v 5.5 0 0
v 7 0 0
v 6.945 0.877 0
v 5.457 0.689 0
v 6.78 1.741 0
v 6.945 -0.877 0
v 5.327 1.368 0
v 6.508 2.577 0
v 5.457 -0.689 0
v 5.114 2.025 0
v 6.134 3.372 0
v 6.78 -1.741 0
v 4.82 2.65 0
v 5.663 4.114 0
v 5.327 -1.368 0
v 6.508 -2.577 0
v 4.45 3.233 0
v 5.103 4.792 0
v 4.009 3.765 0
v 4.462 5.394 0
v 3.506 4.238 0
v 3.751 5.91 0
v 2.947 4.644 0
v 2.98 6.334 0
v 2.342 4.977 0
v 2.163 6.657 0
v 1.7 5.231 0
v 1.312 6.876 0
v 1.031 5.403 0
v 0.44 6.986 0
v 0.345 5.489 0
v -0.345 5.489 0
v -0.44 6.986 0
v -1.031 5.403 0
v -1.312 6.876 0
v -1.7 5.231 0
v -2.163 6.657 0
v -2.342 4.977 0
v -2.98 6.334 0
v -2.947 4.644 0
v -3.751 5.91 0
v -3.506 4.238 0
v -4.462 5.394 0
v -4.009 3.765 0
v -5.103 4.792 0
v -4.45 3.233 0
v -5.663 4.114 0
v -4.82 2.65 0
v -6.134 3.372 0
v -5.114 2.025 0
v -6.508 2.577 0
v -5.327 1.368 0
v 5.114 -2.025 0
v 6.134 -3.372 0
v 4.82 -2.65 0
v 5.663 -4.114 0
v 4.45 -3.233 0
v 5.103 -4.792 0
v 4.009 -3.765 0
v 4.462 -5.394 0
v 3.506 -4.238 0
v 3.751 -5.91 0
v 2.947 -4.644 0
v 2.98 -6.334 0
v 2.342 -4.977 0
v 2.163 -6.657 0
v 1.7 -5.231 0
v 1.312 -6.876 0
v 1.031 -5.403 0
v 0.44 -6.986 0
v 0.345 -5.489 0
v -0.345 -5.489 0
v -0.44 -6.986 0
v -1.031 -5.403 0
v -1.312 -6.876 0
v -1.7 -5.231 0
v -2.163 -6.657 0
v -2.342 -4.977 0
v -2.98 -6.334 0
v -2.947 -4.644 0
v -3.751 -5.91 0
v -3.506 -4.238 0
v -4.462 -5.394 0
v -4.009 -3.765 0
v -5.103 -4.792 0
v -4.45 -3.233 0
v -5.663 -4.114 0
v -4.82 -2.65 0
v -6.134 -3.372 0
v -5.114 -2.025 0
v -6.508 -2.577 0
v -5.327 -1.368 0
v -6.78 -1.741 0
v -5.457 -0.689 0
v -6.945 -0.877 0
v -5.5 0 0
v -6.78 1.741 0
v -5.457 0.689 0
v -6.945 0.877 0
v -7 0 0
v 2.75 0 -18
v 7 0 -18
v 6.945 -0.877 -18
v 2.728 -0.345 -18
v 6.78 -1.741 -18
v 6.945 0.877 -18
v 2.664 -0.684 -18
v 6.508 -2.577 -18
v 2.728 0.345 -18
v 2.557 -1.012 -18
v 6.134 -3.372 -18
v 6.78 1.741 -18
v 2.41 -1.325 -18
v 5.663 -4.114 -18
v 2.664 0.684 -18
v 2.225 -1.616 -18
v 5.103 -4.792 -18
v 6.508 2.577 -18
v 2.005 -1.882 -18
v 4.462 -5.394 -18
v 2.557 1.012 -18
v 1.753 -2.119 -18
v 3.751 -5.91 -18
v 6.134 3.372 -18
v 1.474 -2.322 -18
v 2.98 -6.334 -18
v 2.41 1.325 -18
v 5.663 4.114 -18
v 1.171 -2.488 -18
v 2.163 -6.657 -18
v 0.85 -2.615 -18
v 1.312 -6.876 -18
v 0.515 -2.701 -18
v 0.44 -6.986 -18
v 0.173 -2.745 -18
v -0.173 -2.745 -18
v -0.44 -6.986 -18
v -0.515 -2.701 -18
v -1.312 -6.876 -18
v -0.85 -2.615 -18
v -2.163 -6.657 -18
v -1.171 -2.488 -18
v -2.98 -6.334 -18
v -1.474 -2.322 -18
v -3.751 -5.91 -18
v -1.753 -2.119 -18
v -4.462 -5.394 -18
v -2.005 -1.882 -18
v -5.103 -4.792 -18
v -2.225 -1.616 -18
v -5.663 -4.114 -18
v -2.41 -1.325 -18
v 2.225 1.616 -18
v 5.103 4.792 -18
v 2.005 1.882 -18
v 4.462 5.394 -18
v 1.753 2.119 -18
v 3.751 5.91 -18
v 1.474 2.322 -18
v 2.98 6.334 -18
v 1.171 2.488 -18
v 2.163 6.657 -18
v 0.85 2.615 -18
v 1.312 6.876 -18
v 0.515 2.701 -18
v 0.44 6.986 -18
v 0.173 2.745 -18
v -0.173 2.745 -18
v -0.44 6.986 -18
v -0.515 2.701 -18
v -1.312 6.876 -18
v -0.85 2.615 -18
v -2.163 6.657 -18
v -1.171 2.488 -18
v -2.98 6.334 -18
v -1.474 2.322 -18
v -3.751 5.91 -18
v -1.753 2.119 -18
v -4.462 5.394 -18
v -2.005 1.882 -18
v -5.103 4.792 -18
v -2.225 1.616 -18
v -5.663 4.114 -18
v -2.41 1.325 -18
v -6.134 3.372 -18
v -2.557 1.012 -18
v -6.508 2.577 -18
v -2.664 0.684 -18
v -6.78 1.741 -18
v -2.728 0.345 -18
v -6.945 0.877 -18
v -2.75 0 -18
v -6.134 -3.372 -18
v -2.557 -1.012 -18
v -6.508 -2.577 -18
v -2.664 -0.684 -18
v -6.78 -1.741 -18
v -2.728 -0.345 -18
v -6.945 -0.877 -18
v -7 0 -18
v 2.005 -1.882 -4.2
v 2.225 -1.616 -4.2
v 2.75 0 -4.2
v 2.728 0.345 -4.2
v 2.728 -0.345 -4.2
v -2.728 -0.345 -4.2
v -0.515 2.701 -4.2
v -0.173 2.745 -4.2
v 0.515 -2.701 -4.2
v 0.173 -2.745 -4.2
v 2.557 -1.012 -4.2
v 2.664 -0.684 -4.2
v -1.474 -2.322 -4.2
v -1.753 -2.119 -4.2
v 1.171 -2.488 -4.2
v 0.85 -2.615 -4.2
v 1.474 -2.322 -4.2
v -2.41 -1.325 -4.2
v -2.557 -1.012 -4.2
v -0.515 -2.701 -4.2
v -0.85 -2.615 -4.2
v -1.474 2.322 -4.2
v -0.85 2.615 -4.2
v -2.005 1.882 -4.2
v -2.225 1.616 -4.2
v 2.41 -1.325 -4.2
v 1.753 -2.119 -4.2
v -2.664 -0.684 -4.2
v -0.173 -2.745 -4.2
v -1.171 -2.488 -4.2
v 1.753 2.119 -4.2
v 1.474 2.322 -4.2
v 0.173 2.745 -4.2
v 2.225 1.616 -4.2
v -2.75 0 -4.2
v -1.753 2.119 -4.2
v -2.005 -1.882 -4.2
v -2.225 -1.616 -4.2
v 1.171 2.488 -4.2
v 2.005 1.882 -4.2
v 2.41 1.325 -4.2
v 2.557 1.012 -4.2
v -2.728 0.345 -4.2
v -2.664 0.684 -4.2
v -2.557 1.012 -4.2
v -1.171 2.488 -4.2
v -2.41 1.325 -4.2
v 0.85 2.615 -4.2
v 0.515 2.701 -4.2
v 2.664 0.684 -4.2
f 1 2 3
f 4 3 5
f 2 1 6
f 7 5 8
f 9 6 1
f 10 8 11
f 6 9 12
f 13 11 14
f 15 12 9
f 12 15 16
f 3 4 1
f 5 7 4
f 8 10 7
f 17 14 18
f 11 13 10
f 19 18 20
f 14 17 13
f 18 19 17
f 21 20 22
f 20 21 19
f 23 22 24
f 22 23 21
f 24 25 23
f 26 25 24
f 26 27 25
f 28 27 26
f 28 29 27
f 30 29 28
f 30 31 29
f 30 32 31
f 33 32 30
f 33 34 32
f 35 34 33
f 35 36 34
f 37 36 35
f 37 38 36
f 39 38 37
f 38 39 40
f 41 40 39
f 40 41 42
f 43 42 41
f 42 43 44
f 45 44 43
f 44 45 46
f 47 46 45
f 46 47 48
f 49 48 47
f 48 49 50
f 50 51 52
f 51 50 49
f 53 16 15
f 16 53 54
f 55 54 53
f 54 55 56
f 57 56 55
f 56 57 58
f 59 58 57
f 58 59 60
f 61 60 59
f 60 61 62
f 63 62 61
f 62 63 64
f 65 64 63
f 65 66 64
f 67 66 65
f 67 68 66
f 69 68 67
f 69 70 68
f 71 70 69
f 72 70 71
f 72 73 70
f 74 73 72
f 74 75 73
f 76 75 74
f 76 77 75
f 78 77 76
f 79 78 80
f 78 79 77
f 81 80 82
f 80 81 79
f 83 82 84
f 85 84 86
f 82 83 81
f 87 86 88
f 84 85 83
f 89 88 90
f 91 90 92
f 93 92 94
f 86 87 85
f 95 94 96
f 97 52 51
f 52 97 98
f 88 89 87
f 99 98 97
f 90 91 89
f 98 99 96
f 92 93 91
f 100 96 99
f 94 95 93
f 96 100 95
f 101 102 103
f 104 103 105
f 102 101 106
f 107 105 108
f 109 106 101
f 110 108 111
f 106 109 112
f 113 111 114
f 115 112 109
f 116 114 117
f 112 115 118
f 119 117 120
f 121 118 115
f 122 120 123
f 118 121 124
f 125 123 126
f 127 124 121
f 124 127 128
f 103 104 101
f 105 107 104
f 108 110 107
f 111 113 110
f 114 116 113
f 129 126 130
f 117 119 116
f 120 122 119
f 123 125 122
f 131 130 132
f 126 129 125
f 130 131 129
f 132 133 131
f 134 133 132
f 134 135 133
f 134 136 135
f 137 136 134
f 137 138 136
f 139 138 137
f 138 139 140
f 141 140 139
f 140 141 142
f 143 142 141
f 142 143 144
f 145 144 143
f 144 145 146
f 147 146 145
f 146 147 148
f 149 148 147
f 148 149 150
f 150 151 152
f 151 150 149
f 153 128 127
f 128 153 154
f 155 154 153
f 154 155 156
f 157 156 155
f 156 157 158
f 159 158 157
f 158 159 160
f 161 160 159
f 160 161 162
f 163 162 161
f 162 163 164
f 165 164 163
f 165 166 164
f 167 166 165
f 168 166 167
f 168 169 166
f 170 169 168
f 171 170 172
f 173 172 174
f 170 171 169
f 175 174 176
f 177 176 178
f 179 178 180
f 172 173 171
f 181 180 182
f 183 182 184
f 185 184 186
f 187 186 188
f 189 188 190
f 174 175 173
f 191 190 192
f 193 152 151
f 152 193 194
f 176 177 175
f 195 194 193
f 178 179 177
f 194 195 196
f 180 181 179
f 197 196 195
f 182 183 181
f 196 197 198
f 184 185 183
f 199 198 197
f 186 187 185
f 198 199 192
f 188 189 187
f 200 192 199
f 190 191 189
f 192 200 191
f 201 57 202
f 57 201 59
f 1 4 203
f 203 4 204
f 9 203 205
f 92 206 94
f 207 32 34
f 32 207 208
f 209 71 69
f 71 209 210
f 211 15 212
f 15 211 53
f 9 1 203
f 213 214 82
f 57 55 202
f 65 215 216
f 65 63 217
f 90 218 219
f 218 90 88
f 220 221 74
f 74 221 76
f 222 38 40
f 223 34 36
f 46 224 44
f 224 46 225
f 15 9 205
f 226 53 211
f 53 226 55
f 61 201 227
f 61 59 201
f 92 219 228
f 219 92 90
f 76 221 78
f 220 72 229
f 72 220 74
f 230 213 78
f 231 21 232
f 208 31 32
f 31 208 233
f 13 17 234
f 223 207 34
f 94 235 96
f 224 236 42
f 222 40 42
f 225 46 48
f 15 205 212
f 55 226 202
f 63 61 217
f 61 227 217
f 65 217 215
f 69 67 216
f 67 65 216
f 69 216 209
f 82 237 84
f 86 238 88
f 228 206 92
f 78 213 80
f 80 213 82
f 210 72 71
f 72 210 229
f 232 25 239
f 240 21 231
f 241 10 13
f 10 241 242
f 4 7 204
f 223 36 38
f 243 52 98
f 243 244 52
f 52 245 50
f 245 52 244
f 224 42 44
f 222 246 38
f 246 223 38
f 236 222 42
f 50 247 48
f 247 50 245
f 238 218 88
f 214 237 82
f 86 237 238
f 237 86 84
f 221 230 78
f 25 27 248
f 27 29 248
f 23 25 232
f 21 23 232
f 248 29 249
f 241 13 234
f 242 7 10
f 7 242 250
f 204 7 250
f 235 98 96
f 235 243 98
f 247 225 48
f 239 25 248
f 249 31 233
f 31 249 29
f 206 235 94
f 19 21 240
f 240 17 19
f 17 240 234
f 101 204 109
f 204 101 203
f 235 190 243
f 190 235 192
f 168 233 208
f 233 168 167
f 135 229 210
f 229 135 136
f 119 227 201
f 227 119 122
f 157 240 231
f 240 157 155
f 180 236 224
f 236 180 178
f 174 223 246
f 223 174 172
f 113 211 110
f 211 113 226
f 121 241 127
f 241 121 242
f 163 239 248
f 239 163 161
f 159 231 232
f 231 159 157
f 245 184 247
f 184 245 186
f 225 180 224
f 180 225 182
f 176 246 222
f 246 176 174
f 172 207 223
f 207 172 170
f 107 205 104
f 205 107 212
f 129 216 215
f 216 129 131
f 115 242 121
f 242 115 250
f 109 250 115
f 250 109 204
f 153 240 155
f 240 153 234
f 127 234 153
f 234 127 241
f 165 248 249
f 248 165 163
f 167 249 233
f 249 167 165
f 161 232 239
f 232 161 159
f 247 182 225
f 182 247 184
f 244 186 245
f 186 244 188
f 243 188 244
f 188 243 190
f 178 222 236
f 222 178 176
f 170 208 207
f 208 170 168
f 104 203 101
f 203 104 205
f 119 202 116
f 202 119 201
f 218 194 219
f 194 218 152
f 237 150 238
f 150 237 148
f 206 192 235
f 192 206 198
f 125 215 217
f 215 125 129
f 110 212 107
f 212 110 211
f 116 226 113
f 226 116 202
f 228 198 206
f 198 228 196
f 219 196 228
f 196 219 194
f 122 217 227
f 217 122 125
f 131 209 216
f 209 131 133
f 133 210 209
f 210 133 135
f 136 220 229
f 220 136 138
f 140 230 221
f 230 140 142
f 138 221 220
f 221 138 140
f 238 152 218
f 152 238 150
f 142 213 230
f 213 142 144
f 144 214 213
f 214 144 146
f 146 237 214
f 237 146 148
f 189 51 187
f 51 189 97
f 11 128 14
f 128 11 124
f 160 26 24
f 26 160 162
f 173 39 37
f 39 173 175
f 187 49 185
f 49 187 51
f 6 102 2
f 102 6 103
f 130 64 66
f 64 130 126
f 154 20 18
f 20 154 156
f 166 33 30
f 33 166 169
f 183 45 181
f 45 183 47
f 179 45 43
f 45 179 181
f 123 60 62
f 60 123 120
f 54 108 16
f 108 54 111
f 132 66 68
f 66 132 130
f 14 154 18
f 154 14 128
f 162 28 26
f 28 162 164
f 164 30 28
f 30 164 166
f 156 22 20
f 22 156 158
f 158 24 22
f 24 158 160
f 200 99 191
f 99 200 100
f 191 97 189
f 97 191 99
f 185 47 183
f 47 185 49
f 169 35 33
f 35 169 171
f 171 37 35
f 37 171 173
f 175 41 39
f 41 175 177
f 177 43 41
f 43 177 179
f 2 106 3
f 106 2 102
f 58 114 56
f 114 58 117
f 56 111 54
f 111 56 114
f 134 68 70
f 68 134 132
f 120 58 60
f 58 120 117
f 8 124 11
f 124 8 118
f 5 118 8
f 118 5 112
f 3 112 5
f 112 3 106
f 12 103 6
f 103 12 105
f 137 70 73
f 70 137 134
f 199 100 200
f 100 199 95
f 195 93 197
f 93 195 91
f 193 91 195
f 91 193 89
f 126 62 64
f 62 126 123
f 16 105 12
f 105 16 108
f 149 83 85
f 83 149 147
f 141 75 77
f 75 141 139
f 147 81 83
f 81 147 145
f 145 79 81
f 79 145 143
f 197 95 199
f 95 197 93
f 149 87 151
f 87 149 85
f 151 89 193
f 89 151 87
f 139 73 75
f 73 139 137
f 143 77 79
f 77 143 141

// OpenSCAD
$fn = 50;


difference() {
	union() {
		translate(v = [0, 0, -18.0000000000]) {
			cylinder(h = 18, r = 7.0000000000);
		}
		cylinder(h = 0, r = 10.0000000000);
	}
	union() {
		translate(v = [0, 0, 0]) {
			rotate(a = [0, 0, 0]) {
				difference() {
					union() {
						#translate(v = [0, 0, -18.0000000000]) {
							cylinder(h = 18, r = 2.2500000000);
						}
						#translate(v = [0, 0, -4.2000000000]) {
							cylinder(h = 4.2000000000, r = 7.0000000000, r1 = 2.7500000000, r2 = 5.5000000000);
						}
						#translate(v = [0, 0, -18.0000000000]) {
							cylinder(h = 18, r = 2.7500000000);
						}
						#translate(v = [0, 0, -18.0000000000]) {
							cylinder(h = 18, r = 2.2500000000);
						}
					}
					union();
				}
			}
		}
	}
}
